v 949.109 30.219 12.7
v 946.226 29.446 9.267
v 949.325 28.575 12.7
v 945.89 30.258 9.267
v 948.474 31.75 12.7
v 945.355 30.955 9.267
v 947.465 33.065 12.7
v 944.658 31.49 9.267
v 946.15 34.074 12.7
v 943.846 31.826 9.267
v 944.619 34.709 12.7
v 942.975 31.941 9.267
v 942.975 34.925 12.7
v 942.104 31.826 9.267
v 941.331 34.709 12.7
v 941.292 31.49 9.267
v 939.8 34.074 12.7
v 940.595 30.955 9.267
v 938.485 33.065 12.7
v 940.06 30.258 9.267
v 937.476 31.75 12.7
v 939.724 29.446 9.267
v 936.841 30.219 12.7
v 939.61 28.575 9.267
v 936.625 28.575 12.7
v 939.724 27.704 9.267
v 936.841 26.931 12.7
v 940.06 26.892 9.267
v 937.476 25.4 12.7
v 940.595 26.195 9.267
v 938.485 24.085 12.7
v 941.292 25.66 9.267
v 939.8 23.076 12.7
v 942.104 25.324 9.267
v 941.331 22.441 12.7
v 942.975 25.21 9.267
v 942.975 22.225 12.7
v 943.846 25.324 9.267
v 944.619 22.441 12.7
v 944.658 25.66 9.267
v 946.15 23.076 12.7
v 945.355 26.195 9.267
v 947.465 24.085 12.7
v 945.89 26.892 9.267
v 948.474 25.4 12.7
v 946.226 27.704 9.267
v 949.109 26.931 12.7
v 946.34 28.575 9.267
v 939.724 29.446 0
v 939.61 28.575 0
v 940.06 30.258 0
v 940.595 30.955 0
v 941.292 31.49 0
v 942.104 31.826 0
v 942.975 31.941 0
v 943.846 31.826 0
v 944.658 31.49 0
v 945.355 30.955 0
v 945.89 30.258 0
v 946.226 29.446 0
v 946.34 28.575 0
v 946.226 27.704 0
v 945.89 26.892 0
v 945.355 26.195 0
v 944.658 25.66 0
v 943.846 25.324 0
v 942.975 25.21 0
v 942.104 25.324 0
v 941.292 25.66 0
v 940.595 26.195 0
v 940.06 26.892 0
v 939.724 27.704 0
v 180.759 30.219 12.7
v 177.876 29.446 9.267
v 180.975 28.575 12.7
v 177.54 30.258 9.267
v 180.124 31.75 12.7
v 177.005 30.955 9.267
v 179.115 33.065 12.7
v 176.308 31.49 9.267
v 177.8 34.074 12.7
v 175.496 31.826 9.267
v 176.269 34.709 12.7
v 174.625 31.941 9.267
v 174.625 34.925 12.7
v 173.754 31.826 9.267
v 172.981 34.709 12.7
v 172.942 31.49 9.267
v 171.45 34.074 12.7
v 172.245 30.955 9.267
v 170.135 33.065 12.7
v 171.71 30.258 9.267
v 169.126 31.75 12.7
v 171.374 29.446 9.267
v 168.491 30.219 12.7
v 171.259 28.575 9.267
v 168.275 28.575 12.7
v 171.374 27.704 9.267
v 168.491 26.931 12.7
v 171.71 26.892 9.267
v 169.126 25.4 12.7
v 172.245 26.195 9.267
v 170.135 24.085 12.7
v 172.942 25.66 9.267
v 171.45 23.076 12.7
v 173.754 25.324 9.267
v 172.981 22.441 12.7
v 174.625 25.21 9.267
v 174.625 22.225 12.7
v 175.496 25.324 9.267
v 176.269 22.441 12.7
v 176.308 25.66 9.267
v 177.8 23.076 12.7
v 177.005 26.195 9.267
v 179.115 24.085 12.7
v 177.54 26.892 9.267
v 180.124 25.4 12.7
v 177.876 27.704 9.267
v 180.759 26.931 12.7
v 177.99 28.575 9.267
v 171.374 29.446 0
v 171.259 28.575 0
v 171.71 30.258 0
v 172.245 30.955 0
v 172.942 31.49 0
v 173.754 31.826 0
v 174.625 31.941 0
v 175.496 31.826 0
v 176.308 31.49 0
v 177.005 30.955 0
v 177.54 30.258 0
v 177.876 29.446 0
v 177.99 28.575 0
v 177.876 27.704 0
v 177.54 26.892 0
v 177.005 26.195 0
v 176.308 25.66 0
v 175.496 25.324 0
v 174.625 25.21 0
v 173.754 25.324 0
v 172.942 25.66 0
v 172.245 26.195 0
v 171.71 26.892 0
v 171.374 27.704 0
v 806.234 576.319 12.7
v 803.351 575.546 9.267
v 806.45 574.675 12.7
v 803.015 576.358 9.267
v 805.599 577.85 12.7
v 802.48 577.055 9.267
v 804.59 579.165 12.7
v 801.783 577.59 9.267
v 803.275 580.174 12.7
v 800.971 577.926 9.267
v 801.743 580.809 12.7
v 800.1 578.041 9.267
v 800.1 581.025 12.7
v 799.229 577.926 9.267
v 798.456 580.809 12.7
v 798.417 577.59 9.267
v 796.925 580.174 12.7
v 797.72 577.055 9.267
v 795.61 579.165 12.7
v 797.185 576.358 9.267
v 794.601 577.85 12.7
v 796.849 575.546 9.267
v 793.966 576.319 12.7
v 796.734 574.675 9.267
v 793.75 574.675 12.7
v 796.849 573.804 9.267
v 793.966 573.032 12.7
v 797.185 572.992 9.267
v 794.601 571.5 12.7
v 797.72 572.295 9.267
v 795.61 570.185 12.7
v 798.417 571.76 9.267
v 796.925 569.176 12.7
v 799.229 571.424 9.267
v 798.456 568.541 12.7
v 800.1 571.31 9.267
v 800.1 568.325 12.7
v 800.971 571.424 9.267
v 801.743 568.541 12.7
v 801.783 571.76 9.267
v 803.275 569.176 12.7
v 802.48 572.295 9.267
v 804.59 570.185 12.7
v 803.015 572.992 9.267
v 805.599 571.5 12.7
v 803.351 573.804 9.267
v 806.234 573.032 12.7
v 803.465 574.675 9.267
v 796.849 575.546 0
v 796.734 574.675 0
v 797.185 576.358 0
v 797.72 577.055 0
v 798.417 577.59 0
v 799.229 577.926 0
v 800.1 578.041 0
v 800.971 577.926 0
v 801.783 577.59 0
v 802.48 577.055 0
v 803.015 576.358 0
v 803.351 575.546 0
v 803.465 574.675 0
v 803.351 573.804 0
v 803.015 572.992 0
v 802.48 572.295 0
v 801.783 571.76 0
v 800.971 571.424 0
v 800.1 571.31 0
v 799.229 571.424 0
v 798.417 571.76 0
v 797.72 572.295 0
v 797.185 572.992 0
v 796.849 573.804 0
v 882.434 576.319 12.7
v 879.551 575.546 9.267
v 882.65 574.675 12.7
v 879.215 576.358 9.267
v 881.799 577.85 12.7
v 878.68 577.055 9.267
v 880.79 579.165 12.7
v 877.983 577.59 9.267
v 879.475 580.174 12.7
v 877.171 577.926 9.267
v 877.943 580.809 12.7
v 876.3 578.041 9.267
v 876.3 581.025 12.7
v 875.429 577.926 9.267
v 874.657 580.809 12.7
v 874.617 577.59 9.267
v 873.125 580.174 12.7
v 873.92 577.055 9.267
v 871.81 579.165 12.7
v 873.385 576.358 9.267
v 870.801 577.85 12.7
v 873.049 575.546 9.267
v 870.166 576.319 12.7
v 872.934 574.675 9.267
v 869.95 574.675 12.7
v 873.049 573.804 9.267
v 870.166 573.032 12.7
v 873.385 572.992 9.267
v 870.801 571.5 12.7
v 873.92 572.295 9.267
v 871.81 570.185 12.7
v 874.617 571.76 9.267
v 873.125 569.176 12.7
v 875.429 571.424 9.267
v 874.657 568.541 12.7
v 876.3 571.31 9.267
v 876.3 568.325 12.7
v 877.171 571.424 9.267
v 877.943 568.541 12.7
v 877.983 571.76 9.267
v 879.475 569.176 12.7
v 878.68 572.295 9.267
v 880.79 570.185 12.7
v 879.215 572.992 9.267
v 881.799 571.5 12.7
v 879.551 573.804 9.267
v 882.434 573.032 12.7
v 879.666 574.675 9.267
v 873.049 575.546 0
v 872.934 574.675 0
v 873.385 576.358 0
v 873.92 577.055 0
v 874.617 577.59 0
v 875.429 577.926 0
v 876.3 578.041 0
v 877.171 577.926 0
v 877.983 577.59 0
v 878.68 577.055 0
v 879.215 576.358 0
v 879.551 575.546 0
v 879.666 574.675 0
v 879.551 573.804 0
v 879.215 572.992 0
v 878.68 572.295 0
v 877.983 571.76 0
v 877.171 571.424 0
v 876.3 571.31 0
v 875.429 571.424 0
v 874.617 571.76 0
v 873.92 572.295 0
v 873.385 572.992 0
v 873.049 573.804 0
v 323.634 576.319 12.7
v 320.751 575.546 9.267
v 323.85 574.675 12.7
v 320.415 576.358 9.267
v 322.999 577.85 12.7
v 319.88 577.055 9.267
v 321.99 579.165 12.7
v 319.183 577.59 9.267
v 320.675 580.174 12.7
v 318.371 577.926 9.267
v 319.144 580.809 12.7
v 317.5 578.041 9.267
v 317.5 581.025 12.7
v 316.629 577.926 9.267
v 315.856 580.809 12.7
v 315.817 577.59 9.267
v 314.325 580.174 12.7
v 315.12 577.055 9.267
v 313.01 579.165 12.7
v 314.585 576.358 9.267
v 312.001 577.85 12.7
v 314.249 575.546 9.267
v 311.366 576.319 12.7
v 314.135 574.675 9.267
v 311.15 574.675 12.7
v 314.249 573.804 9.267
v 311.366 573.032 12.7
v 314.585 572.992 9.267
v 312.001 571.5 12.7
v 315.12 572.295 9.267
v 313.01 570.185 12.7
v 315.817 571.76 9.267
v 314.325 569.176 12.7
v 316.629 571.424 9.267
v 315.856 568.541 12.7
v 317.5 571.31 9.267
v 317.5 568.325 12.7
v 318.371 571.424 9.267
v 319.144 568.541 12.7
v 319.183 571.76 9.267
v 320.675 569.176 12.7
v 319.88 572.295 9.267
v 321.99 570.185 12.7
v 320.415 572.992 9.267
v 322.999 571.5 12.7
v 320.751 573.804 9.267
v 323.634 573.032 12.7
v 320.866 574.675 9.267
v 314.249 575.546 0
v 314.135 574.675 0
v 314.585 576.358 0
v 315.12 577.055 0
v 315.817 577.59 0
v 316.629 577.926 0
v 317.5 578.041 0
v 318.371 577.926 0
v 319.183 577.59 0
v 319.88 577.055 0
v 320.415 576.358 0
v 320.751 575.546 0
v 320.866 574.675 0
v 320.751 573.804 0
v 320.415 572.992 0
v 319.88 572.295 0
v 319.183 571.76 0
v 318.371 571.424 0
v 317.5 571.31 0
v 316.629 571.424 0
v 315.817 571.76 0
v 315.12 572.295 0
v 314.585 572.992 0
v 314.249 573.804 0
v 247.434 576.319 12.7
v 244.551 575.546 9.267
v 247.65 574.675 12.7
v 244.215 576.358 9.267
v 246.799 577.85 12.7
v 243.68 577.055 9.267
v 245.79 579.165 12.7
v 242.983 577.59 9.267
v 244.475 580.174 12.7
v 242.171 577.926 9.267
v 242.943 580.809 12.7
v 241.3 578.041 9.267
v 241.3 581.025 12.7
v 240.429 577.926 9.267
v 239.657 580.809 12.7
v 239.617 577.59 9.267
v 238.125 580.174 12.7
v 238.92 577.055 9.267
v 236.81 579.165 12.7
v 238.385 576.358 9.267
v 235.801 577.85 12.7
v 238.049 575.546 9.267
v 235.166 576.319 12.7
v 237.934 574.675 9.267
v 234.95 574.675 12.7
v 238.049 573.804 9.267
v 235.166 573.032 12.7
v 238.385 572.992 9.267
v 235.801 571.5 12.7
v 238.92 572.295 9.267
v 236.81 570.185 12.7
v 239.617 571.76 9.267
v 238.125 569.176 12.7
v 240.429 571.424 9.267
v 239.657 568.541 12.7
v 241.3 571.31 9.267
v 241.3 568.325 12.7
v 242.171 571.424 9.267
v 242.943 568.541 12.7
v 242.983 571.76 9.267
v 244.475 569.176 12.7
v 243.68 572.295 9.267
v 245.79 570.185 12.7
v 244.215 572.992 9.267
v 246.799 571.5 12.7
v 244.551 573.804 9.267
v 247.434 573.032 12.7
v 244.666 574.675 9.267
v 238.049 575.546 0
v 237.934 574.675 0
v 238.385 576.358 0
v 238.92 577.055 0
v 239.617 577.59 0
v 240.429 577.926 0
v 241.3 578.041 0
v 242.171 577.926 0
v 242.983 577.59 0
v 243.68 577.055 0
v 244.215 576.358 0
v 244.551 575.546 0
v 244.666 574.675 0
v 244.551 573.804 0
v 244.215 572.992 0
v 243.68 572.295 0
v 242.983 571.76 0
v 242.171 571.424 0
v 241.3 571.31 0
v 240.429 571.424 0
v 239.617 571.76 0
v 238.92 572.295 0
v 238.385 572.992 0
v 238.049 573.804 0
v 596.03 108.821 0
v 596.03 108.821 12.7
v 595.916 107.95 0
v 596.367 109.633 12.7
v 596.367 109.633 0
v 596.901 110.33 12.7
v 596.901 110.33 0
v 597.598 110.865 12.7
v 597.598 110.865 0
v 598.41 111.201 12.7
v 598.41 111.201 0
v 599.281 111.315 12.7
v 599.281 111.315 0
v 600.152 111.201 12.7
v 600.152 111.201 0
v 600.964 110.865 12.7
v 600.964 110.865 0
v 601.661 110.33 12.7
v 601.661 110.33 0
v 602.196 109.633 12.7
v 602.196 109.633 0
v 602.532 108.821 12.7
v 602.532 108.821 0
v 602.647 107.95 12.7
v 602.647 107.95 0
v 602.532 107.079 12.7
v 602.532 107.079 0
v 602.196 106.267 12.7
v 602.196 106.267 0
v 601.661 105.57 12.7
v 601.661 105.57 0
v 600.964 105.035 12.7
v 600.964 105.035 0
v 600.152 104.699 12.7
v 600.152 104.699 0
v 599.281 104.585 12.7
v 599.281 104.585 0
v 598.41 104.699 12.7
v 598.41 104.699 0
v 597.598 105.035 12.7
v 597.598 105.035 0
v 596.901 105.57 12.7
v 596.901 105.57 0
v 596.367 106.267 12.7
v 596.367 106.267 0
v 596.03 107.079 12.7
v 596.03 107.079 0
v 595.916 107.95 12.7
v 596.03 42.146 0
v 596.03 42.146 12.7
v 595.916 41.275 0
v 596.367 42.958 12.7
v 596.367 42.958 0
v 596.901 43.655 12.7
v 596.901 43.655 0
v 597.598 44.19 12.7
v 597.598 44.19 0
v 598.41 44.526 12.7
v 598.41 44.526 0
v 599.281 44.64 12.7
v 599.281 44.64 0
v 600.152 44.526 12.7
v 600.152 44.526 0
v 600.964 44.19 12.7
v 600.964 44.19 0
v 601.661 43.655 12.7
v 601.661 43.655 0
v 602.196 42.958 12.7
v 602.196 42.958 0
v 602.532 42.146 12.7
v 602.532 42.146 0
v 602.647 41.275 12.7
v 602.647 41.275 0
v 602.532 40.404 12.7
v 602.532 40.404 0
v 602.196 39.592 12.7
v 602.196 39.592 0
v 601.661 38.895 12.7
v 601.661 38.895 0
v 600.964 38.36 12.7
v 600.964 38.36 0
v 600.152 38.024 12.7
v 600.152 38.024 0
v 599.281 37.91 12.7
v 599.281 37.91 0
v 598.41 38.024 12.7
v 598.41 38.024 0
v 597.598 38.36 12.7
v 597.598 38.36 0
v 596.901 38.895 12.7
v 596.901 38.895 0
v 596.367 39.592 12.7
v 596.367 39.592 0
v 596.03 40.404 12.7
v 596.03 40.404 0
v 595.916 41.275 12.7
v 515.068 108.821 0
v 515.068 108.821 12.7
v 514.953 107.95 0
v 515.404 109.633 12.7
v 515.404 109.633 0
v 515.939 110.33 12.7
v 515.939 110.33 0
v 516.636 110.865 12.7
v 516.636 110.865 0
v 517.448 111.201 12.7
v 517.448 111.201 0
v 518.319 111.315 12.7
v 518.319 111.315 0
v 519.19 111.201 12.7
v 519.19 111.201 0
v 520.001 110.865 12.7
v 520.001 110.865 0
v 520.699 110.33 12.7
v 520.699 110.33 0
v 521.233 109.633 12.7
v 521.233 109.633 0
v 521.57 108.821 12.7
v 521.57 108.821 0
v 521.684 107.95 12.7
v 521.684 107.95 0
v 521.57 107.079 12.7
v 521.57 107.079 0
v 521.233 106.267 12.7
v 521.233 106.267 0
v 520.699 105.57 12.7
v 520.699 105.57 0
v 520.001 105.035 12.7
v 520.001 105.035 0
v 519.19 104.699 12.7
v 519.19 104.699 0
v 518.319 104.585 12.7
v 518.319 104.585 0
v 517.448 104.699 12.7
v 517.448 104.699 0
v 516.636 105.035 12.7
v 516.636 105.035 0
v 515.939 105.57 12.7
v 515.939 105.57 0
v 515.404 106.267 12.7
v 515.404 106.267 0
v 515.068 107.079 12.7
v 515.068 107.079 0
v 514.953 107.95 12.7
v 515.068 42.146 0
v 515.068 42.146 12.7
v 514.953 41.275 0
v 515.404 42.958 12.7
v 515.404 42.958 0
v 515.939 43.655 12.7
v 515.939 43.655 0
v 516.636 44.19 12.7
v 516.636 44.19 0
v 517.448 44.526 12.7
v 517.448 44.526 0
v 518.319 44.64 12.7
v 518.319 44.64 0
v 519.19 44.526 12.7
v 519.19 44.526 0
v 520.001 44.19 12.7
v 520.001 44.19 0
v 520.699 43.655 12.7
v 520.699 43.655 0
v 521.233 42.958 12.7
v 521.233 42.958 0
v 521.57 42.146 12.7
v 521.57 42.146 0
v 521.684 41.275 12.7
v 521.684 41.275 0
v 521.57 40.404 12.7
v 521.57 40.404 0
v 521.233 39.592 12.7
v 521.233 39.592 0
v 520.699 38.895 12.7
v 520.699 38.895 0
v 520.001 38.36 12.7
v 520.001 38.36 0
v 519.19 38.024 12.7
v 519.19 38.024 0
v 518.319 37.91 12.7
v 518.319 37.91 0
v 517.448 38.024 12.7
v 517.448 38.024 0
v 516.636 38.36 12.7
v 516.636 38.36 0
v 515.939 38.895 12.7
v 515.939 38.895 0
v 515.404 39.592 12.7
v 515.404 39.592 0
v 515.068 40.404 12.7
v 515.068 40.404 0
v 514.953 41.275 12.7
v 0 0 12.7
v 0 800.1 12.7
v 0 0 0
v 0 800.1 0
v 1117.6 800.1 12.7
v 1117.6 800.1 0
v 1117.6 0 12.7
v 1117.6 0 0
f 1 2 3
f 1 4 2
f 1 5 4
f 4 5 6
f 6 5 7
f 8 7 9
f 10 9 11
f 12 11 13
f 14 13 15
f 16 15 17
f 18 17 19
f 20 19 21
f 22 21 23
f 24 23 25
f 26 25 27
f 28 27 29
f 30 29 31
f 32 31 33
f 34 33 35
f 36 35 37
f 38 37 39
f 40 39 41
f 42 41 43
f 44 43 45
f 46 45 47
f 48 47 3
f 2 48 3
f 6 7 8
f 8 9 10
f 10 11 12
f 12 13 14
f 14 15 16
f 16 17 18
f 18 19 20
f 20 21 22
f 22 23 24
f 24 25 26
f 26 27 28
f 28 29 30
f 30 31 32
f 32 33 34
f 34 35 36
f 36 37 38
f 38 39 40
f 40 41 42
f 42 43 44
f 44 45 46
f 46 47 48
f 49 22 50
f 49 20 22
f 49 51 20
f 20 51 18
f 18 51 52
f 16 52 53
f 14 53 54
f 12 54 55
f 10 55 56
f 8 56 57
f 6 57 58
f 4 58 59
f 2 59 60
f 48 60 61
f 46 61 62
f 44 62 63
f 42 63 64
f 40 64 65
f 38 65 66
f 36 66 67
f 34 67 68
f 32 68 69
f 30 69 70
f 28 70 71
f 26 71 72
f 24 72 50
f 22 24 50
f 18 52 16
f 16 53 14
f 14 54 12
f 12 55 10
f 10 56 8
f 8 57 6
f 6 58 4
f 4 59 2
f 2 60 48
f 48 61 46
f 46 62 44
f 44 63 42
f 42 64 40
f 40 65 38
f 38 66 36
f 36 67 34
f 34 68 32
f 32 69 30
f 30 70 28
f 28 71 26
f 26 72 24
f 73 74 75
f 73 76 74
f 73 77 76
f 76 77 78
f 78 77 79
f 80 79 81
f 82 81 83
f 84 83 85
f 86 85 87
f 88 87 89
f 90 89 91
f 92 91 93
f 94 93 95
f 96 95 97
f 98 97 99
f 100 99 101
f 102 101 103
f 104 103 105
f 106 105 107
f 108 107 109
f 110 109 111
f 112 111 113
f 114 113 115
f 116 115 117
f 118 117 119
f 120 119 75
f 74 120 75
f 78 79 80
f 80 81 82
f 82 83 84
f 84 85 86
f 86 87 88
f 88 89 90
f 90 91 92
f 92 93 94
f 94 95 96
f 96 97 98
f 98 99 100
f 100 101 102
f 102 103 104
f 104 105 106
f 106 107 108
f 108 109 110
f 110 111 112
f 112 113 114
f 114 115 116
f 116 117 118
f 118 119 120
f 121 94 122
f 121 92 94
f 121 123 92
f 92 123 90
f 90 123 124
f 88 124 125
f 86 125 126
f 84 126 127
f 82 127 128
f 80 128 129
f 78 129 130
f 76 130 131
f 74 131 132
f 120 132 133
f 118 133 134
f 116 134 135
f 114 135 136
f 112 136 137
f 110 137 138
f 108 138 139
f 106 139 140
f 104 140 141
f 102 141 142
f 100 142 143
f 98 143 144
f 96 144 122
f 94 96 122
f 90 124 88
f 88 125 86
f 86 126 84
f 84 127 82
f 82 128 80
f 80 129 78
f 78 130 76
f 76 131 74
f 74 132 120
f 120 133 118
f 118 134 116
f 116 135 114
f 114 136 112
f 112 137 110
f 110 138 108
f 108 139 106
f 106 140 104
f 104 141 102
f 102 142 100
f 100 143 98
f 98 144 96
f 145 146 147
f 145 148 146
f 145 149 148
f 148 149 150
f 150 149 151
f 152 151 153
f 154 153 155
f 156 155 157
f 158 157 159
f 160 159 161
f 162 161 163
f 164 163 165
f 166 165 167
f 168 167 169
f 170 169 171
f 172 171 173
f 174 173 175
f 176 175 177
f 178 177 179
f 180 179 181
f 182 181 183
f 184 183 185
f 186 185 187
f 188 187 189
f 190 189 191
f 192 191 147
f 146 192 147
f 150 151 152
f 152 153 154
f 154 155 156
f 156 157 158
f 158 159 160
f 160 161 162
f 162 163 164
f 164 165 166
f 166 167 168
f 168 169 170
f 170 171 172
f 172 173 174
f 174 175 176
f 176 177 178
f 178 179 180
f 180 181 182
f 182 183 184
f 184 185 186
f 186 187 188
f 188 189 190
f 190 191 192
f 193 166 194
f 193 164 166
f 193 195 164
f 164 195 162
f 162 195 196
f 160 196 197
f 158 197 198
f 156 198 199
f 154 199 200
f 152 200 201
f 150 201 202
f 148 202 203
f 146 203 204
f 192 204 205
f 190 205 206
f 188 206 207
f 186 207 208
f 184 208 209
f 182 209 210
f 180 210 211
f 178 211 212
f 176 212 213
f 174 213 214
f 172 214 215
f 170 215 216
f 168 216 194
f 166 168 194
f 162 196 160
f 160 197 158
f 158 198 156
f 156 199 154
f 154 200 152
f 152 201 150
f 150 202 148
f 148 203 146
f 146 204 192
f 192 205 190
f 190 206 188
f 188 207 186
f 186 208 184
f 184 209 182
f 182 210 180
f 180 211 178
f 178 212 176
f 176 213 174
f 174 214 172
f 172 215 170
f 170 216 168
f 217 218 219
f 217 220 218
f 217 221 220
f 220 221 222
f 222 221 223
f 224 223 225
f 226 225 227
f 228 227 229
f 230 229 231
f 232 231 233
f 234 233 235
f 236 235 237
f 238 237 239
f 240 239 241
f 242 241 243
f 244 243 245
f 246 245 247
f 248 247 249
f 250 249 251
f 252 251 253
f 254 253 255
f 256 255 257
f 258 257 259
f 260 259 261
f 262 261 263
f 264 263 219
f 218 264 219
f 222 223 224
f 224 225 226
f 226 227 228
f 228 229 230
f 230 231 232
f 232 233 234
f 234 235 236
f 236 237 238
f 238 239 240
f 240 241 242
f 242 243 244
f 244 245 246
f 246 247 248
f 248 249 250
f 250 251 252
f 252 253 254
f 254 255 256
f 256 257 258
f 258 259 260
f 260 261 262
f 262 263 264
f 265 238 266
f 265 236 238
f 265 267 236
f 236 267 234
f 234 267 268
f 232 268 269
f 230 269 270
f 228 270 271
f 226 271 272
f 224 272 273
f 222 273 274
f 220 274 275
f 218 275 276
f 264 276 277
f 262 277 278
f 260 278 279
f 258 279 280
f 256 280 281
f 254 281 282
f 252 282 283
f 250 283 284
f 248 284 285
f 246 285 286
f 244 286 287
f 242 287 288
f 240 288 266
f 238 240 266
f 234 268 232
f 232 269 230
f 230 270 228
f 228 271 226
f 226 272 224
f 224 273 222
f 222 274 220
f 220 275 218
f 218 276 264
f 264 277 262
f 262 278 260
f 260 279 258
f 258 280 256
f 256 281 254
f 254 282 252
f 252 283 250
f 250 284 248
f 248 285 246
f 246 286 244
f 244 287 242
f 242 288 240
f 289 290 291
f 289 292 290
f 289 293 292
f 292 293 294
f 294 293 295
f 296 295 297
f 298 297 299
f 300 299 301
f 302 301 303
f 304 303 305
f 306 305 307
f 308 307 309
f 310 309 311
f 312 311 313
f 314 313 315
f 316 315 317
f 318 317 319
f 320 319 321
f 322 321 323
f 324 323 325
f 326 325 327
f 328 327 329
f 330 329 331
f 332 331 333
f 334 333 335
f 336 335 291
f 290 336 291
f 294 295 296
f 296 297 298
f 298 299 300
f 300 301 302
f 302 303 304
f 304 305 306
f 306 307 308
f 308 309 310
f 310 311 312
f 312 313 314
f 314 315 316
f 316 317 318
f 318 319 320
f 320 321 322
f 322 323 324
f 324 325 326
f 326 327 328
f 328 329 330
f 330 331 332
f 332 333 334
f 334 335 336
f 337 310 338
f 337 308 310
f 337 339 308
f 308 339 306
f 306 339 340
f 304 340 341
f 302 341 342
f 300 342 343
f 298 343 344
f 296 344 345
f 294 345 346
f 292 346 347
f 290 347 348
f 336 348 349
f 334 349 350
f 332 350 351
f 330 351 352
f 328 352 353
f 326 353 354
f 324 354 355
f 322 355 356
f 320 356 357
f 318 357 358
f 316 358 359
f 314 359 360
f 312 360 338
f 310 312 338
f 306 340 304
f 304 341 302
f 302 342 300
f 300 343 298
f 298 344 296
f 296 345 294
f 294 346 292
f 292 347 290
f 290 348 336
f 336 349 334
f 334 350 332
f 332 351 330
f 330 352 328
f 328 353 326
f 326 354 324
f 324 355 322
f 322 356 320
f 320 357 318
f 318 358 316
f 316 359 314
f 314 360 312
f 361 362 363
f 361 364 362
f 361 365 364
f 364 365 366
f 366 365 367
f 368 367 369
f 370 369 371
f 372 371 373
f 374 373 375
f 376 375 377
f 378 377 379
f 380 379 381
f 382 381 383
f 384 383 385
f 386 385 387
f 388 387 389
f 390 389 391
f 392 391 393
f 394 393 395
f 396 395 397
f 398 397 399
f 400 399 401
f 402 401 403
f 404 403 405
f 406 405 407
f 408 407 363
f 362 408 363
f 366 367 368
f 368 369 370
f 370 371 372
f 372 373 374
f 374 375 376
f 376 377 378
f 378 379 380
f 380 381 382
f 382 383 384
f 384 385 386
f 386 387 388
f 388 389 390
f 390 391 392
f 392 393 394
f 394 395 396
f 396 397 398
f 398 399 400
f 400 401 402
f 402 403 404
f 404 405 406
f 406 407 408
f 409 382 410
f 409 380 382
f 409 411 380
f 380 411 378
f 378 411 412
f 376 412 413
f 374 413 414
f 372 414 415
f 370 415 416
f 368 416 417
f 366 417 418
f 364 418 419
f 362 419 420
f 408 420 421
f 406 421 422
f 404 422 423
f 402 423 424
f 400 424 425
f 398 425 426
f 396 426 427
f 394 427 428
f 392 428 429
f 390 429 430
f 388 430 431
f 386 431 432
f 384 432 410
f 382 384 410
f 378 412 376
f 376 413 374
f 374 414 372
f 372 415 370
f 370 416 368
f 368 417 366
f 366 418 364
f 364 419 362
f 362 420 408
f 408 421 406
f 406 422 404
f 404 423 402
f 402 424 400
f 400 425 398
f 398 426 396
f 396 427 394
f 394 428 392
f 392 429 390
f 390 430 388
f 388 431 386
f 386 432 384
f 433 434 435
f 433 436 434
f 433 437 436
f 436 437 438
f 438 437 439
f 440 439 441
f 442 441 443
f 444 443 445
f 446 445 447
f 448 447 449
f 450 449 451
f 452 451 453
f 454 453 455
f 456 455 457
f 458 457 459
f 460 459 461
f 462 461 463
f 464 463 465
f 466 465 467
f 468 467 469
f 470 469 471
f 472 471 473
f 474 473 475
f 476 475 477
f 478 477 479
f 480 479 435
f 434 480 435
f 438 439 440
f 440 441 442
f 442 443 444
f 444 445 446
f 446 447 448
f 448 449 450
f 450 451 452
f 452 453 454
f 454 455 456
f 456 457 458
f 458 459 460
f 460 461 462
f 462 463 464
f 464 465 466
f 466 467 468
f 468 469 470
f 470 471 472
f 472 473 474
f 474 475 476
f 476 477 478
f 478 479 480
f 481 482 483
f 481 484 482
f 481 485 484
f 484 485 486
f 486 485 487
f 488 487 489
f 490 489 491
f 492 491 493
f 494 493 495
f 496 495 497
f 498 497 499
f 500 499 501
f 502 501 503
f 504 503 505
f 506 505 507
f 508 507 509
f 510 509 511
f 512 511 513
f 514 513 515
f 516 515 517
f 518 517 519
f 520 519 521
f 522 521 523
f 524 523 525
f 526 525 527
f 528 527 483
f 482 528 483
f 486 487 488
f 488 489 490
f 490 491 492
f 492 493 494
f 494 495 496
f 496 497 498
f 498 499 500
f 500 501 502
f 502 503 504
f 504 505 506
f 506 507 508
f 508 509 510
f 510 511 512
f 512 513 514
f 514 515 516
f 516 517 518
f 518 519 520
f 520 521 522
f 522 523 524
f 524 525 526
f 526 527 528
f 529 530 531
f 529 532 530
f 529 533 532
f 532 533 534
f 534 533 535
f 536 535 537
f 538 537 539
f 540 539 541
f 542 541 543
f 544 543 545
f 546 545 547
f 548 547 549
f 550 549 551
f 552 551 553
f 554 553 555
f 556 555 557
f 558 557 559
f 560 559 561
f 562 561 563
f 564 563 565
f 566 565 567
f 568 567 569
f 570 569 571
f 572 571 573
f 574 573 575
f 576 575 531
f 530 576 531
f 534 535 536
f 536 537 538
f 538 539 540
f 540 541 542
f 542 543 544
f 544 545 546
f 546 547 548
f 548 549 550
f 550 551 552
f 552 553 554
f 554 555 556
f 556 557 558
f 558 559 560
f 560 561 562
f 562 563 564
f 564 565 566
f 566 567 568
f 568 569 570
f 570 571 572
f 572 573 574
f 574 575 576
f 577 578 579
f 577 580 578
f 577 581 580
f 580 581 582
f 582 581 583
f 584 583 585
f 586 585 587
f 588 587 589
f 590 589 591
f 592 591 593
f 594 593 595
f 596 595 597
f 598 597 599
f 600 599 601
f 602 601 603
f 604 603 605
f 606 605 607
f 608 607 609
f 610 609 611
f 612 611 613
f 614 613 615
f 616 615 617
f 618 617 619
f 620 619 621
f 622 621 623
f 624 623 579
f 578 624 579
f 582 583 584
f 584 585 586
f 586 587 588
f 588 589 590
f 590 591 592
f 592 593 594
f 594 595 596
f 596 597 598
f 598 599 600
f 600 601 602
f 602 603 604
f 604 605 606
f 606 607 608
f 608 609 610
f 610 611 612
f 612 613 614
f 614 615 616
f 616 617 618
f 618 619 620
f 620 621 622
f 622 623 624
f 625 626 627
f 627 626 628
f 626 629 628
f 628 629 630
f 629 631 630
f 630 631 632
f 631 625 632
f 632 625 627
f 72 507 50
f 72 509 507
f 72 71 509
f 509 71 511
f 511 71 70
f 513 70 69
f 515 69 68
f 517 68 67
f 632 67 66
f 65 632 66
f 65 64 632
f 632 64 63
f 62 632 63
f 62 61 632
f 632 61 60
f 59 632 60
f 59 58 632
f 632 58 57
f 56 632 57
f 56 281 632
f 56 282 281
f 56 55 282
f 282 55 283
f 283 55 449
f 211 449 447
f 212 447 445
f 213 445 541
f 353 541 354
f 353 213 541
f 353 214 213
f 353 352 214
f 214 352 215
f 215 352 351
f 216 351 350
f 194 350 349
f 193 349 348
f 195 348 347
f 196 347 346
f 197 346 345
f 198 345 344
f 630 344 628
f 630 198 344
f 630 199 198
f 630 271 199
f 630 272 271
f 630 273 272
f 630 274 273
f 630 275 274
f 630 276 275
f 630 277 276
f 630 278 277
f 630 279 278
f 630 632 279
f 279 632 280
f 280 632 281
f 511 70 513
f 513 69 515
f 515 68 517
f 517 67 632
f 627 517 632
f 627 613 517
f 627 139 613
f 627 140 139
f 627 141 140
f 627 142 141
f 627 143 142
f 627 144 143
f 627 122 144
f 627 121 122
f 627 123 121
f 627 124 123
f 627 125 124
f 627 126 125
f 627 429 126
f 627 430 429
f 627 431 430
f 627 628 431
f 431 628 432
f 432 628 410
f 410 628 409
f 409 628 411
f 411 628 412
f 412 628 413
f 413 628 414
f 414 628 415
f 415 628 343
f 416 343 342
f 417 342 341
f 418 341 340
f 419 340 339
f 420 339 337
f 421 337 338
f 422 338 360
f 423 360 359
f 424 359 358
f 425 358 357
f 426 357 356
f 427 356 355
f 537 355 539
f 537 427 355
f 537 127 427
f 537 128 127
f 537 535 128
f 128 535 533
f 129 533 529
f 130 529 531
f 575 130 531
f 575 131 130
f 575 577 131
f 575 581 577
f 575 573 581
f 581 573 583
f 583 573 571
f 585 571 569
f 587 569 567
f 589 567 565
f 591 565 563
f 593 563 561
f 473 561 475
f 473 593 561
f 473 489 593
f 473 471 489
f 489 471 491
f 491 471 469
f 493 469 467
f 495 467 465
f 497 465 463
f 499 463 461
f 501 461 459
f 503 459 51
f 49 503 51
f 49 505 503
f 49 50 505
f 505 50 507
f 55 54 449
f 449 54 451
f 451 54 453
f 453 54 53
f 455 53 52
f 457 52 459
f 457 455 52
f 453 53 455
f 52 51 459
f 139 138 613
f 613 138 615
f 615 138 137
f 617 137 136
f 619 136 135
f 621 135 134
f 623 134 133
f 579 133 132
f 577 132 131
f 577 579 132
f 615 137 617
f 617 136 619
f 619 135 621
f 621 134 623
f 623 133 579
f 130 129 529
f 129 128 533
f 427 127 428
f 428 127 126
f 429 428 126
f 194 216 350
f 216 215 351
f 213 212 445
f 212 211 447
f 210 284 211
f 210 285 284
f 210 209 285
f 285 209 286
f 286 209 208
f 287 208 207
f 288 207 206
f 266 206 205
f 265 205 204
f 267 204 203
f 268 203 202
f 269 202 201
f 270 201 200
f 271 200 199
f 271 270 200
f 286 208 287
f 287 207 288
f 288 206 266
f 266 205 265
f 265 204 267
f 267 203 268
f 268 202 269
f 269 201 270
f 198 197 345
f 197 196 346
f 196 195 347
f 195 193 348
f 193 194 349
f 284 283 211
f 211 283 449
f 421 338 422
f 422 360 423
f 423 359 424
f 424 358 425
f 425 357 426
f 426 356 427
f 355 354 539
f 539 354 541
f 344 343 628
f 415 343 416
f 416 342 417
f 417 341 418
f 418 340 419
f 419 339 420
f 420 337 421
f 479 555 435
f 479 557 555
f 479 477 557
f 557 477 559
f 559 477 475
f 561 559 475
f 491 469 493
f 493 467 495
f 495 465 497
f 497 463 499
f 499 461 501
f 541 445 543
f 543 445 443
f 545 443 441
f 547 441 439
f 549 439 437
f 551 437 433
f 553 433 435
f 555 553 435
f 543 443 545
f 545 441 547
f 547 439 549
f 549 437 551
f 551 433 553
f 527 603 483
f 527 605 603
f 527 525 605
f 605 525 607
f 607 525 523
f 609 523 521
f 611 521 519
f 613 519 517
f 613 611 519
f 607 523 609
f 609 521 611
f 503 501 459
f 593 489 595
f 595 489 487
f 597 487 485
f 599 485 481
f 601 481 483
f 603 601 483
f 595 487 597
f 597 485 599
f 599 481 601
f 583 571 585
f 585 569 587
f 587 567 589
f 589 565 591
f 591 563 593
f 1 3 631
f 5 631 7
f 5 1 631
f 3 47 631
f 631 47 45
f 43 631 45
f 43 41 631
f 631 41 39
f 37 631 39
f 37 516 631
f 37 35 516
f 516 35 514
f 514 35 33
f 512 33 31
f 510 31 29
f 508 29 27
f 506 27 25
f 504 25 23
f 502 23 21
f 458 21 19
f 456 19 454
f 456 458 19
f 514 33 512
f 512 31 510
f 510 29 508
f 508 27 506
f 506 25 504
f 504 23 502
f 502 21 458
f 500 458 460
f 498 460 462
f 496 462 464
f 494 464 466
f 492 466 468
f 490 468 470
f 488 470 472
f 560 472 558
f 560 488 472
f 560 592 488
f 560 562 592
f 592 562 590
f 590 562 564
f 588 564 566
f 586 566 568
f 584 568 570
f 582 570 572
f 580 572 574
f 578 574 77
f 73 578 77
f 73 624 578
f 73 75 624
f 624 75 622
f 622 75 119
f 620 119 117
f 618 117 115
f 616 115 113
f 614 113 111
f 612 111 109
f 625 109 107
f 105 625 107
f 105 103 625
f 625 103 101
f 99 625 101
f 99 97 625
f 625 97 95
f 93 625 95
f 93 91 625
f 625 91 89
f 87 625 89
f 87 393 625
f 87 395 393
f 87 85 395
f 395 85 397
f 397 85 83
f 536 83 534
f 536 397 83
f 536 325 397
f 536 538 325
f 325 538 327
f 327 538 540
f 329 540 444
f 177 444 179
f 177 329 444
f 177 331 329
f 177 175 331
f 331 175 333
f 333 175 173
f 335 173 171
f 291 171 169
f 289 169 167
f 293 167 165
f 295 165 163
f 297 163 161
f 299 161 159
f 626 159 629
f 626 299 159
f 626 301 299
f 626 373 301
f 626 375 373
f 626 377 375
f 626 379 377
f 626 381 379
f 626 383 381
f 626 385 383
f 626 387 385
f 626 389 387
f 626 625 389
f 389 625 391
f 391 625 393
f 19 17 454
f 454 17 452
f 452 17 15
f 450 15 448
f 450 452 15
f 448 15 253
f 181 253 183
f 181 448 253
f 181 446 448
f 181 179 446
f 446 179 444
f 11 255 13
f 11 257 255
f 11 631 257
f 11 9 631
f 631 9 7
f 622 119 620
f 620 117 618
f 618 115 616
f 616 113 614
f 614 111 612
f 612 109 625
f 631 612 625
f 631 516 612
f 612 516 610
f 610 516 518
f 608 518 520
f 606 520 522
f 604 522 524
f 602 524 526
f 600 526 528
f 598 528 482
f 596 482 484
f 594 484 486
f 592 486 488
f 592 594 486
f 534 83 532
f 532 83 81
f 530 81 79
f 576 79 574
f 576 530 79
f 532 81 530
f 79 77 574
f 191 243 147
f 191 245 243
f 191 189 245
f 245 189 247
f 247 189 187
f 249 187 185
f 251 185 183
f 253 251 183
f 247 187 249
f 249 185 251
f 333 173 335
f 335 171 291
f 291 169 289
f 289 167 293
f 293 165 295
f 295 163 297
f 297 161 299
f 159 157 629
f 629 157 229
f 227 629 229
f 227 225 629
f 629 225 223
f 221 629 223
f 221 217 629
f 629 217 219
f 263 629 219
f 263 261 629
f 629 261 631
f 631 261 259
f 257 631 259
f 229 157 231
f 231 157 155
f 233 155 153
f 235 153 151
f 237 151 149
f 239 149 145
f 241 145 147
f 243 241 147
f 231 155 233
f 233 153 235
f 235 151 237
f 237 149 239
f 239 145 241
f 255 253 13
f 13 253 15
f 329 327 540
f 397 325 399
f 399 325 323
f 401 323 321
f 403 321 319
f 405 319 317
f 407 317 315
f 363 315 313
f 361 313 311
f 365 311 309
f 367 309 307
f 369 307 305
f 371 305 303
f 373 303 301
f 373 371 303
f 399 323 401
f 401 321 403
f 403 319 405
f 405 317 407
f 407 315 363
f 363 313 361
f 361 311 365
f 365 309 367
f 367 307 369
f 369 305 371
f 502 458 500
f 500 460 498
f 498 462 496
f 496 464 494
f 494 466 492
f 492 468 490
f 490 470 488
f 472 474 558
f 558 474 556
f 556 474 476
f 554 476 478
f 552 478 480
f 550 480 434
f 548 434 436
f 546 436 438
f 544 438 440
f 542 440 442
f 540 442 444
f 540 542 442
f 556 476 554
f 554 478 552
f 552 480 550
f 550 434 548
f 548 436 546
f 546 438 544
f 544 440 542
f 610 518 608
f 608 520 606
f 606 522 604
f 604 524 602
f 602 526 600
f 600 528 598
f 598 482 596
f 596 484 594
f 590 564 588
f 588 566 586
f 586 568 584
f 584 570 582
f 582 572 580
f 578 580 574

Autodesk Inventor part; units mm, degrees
ref_plane "YZ Plane" through (0, 0, 0) normal (1, 0, 0) x (0, 1, 0)
ref_plane "XZ Plane" through (0, 0, 0) normal (0, 1, 0) x (-1, 0, 0)
ref_plane "XY Plane" through (0, 0, 0) normal (0, 0, 1) x (1, 0, 0)
sketch "Sketch1" plane through (0, 0, 0) normal (0, 0, 1) x (1, 0, 0)
  line L0 (0, 0) -> (1117.6, 0)
  line L1 (1117.6, 0) -> (1117.6, 800.1)
  line L2 (1117.6, 800.1) -> (0, 800.1)
  line L3 (0, 800.1) -> (0, 0)
  dimension "d0" = 1117.6
  dimension "d1" = 800.1
extrude "Extrusion1" add sketch "Sketch1" along normal blind 12.7
hole "Hole1" at (518.3188, 41.275, 12.7) direction (0, 0, -1) diameter 6.731 end through all
pattern_linear "Rectangular Pattern1" count 2 spacing 66.675 along (0, 1, 0) count 2 spacing 80.9625 along (1, 0, 0) of "Hole1"
hole "Hole2" at (241.3, 574.675, 12.7) direction (0, 0, -1) diameter 6.731 depth 25.4 tip angle 118 countersink diameter 12.7 countersink angle 82
pattern_linear "Rectangular Pattern2" count 2 spacing 76.2 along (1, 0, 0) of "Hole2"
hole "Hole3" at (876.3, 574.675, 12.7) direction (0, 0, -1) diameter 6.731 depth 25.4 tip angle 118 countersink diameter 12.7 countersink angle 82
pattern_linear "Rectangular Pattern3" count 2 spacing 76.2 along (-1, 0, 0) of "Hole3"
hole "Hole4" at (174.625, 28.575, 12.7) direction (0, 0, -1) diameter 6.731 depth 25.4 tip angle 118 countersink diameter 12.7 countersink angle 82
hole "Hole5" at (942.975, 28.575, 12.7) direction (0, 0, -1) diameter 6.731 depth 25.4 tip angle 118 countersink diameter 12.7 countersink angle 82
properties part number "GE-12012"
